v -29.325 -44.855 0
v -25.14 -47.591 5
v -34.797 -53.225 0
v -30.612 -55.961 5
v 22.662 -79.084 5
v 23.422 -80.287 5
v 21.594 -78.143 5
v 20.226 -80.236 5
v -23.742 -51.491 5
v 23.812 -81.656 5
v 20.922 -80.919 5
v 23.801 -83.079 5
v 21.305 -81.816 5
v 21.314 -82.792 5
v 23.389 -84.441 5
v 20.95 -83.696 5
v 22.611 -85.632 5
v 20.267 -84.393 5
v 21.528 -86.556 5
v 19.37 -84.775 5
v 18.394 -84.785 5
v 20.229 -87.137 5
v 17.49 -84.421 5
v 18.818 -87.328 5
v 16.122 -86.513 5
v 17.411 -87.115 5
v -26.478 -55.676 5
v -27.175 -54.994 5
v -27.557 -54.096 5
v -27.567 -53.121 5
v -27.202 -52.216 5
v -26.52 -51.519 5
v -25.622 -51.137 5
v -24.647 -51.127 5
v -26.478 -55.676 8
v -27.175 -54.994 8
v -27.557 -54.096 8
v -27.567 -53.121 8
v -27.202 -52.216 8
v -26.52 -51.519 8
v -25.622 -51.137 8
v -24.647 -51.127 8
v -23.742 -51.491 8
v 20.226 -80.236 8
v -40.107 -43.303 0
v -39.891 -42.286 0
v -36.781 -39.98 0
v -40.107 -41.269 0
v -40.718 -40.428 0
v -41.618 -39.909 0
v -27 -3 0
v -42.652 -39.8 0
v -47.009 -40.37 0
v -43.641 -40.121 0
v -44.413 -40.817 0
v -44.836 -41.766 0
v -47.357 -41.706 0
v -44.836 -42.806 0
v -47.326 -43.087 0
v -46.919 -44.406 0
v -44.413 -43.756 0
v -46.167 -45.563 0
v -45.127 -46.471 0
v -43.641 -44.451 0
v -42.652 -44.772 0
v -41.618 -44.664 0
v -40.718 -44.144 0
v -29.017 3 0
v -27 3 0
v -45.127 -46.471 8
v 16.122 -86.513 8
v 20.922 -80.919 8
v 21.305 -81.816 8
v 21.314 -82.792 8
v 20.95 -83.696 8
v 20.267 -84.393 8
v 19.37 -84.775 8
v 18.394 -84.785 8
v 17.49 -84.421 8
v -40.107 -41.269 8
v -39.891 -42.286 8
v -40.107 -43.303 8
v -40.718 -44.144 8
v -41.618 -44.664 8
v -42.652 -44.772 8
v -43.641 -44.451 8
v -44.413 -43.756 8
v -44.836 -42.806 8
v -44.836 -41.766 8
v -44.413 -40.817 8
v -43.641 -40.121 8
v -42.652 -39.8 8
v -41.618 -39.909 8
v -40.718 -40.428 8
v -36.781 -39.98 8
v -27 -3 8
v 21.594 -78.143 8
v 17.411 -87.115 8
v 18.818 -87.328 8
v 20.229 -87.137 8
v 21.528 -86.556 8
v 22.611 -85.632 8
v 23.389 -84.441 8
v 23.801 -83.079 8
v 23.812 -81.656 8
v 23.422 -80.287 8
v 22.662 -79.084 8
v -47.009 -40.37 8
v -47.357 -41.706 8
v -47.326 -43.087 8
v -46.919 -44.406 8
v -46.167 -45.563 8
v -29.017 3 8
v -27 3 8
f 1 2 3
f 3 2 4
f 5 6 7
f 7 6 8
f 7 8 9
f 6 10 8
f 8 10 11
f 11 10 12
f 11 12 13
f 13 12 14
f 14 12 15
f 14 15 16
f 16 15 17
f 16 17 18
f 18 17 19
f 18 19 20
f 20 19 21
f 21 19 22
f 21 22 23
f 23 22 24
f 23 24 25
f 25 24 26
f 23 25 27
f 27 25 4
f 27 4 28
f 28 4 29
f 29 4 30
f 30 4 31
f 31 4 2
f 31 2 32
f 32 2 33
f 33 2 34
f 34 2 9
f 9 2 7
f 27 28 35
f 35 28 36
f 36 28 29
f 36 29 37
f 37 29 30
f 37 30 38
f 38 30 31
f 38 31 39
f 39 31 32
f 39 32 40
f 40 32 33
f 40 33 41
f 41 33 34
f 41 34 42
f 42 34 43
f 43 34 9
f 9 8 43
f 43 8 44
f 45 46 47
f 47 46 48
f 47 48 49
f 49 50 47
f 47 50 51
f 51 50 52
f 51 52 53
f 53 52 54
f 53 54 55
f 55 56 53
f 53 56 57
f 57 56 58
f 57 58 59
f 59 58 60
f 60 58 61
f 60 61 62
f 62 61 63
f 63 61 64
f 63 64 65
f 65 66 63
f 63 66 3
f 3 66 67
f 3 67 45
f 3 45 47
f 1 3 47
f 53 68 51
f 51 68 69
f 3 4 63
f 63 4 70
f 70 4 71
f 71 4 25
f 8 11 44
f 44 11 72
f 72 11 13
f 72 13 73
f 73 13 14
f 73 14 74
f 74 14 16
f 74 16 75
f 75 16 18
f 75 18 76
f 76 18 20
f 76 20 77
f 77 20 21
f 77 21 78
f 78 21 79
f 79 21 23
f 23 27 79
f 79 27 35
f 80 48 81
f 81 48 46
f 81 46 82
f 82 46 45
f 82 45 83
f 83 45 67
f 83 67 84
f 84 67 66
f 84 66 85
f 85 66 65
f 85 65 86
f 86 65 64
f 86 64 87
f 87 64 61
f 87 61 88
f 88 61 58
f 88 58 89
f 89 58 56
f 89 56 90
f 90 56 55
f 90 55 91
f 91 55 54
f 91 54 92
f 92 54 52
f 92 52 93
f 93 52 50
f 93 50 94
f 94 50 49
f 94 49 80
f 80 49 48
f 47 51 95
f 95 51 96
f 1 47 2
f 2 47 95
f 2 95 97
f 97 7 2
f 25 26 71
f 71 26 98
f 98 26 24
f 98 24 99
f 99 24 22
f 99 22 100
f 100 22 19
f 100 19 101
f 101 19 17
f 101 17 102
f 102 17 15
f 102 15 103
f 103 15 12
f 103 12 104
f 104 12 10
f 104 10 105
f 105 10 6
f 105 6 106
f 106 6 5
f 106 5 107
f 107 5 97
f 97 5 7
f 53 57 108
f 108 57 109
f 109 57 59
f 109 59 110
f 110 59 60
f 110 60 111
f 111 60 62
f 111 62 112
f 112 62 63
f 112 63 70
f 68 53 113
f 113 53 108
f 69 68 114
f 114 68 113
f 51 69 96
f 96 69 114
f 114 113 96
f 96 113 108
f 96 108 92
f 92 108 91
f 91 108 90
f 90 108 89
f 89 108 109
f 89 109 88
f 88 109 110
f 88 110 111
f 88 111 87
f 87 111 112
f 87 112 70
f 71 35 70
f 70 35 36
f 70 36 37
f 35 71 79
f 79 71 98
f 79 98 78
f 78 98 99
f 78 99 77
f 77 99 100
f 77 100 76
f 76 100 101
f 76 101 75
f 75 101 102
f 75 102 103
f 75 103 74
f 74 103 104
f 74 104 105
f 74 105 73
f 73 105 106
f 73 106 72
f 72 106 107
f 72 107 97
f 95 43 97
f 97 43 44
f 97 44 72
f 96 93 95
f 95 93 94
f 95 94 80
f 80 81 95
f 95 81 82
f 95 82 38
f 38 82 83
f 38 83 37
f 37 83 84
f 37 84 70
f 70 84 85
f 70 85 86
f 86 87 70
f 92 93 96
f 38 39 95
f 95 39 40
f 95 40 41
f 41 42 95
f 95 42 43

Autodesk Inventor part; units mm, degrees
ref_plane "YZ Plane" through (0, 0, 0) normal (1, 0, 0) x (0, 1, 0)
ref_plane "XZ Plane" through (0, 0, 0) normal (0, 1, 0) x (-1, 0, 0)
ref_plane "XY Plane" through (0, 0, 0) normal (0, 0, 1) x (1, 0, 0)
sketch "Sketch2" plane through (0, 0, 0) normal (0, 0, 1) x (1, 0, 0)
  line L0 (-27, 0) -> (18, 0) construction
  circle A0 centre (-42.3909, -42.2862) radius 2.5
  line L1 (-1.368, -72.0925) -> (-26.478, -55.6764)
  arc A1 (-23.742, -51.4914) -> (-26.478, -55.6764) centre (-25.11, -53.5839) ccw
  line L2 (-23.742, -51.4914) -> (1.368, -67.9075)
  arc A2 (-47.0093, -40.3702) -> (-45.1269, -46.4712) centre (-42.3909, -42.2862) ccw
  line L3 (-27, 0) -> (-27, 3)
  line L4 (-27, 3) -> (-27, -3)
  line L5 (-29.0168, 3) -> (-27, 3)
  line L6 (-27, 3) -> (-27, -3)
  line L7 (-29.0168, 3) -> (-47.0093, -40.3702)
  line L8 (-27, -3) -> (-36.781, -39.9801)
  line L9 (-45.1269, -46.4712) -> (-2.736, -74.185)
  line L10 (-36.781, -39.9801) -> (2.736, -65.815)
  line L11 (-2.736, -74.185) -> (15.2131, -85.9196)
  line L12 (2.736, -65.815) -> (21.5936, -78.1435)
  line L13 (15.2131, -85.9196) -> (16.1216, -86.5135)
  arc A3 (16.1216, -86.5135) -> (21.5936, -78.1435) centre (18.8576, -82.3285) ccw
  line L14 (1.368, -67.9075) -> (20.2256, -80.236)
  line L15 (17.4896, -84.421) -> (-1.368, -72.0925)
  arc A4 (17.4896, -84.421) -> (20.2256, -80.236) centre (18.8576, -82.3285) ccw
  point P0 (0, 0)
extrude "Extrusion2" add sketch "Sketch2" along normal blind 8
sketch "Sketch3" plane through (-36.781, -39.9801, 8) normal (0.5472037, 0.8369994, 0) x (0.8369994, -0.5472037, 0)
  line L0 (74.7426, 8) -> (74.7426, 0) projected
  line L1 (8.9084, 8) -> (74.7426, 8)
  line L2 (74.7426, 8) -> (74.7426, 3)
  line L3 (74.7426, 3) -> (13.9084, 3)
  line L4 (8.9084, 8) -> (13.9084, 3)
  line L5 (8.9084, 8) -> (15.9795, 8) construction
  point P0 (74.7426, 8)
  dimension "d30" = 5
  dimension "d31" = 45
extrude "Extrusion3" cut sketch "Sketch3" against normal blind 10
properties part number "Sliding linkage"
